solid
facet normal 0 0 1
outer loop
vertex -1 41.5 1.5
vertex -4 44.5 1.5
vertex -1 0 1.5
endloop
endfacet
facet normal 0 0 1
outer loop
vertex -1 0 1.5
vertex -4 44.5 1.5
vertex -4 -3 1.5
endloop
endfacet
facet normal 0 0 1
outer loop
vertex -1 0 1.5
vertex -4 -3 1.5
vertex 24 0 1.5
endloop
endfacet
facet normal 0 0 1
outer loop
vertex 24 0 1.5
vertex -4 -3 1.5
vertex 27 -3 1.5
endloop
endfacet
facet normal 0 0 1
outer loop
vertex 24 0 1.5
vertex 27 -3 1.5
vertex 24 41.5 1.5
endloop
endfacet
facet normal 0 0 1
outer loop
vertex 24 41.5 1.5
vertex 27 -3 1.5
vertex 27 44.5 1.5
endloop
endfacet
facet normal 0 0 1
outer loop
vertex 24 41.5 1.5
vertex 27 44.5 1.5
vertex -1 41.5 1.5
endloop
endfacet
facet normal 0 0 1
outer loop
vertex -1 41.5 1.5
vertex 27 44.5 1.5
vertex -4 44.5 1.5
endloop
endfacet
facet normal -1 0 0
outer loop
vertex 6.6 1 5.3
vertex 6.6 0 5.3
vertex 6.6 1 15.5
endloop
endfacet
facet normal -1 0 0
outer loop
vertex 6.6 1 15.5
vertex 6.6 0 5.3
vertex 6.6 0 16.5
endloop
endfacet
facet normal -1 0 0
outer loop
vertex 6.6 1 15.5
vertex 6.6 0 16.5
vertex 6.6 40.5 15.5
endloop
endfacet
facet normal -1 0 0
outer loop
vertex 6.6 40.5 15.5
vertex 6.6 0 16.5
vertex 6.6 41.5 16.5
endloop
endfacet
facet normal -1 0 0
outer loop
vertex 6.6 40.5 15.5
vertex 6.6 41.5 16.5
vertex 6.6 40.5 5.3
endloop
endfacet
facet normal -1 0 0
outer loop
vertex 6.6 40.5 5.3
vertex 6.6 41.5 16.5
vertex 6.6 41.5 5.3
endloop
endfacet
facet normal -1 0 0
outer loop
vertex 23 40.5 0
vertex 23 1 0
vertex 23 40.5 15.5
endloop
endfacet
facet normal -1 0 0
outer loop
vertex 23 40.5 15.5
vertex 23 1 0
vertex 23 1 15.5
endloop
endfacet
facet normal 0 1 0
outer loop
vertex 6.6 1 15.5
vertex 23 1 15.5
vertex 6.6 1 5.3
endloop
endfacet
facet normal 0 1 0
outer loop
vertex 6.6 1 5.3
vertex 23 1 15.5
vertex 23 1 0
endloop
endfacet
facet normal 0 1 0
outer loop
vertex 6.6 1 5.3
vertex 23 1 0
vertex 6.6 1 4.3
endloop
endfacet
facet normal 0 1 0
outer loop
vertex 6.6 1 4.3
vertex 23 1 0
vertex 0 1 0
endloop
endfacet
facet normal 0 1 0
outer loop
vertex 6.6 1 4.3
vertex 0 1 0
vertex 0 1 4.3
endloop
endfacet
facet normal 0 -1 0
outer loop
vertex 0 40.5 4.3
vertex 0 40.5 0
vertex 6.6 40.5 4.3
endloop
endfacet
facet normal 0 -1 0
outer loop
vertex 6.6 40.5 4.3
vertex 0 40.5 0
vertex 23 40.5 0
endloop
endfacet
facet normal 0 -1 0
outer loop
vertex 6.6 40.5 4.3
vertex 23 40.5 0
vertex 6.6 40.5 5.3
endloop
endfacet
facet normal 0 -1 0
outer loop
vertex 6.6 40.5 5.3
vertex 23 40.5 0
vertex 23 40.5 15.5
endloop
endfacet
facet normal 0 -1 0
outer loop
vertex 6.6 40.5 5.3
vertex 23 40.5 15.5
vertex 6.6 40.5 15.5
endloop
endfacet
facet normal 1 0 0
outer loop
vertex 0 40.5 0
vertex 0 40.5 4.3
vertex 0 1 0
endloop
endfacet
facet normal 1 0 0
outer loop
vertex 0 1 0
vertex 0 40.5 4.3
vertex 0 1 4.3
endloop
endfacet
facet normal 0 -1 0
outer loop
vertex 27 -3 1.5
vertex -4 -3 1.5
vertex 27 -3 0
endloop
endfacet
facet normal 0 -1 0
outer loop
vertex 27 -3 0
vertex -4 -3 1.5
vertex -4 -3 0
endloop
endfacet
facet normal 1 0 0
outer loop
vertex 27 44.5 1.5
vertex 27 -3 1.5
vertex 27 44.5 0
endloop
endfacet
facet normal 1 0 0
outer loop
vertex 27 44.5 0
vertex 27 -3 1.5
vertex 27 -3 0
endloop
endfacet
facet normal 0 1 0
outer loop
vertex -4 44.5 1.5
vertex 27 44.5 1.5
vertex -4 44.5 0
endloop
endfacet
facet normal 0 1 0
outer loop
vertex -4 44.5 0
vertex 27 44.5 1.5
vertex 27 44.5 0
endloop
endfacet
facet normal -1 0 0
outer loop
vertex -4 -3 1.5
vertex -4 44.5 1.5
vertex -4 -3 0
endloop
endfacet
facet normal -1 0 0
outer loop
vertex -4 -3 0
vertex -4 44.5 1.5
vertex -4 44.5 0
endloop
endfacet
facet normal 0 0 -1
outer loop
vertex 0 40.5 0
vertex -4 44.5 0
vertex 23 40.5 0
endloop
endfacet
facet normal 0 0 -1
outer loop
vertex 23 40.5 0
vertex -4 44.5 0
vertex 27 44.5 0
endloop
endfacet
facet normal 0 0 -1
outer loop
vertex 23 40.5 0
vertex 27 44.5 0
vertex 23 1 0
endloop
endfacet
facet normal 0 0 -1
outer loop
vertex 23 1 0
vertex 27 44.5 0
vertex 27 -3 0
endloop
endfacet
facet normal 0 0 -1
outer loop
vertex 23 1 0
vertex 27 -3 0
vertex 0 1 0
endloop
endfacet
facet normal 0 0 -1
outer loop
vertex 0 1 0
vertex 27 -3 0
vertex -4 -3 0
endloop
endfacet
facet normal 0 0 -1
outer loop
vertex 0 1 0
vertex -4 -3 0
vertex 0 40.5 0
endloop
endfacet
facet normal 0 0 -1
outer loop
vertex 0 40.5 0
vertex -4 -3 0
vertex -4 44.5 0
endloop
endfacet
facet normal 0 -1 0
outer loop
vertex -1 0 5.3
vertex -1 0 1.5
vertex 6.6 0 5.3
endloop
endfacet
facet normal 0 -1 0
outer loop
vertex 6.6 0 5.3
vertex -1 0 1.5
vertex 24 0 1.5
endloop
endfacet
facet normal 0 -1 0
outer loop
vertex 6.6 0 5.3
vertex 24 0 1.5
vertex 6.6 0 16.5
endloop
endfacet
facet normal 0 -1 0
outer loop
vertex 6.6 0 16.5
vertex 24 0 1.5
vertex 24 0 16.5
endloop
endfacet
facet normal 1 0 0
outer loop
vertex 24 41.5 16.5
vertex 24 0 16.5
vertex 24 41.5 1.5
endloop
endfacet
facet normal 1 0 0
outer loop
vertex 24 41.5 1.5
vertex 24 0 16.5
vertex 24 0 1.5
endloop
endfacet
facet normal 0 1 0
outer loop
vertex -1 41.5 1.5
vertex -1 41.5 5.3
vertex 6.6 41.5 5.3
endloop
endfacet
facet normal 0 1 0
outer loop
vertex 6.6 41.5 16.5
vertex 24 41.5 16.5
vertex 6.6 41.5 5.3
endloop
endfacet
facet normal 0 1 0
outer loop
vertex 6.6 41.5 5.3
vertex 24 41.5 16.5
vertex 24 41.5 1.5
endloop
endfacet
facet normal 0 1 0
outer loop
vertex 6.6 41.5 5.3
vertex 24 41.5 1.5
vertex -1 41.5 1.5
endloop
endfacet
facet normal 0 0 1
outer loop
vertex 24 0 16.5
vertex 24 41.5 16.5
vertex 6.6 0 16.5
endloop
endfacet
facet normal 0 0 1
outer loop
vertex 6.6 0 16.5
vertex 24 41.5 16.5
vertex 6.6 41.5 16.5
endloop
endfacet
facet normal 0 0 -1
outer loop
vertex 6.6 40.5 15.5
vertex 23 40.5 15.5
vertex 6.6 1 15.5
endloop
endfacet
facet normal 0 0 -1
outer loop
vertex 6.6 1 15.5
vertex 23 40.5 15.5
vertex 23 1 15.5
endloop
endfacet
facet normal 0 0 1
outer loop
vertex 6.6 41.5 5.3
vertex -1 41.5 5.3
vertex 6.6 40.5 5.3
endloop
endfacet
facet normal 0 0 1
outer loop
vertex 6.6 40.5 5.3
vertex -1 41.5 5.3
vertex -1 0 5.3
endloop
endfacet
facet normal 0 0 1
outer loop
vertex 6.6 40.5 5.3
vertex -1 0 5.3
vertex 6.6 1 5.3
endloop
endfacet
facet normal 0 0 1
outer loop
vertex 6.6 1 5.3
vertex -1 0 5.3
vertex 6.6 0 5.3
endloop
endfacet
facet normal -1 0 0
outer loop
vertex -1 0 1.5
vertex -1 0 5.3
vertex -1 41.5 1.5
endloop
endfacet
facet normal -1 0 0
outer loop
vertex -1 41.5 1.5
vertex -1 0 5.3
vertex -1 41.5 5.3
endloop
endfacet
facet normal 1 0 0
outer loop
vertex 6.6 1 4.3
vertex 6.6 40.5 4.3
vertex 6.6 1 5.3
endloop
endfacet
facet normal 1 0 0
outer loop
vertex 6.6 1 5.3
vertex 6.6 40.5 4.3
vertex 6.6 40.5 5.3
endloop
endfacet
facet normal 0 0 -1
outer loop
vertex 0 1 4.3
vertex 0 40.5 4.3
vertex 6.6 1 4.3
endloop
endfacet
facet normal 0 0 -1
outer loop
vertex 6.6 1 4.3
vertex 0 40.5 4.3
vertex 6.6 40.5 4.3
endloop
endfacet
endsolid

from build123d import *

# Parameters (mm, degrees)
ESBO_O1_W                = 31
ESBO_O1_H                = 47.5
ESBO_O1_W_2              = 24
ESBO_O1_H_2              = 41.5
RESSALTO_EXTRUS_O1_DEPTH = 1.5
RESSALTO_EXTRUS_O2_DEPTH = 16.5
RESSALTO_EXTRUS_O3_START = 16.5
ESBO_O1_5_W              = 23
ESBO_O1_5_H              = 39.5
RESSALTO_EXTRUS_O3_DEPTH = 1
ESBO_O2_W                = 6.6
ESBO_O2_H                = 41.5
CORTE_EXTRUS_O1_DEPTH    = 15
RESSALTO_EXTRUS_O6_START = -1
RESSALTO_EXTRUS_O6_DEPTH = 39.5
ESBO_O4_W                = 3.8
ESBO_O4_H                = 1
RESSALTO_EXTRUS_O9_DEPTH = 7.6


with BuildPart() as part:
    # Esboço1 → Ressalto-extrusão1 (new body)
    with BuildSketch(Plane.XY):
        with Locations((11.5, 20.75)):
            Rectangle(ESBO_O1_W, ESBO_O1_H)
        with Locations((12, 20.75)):
            Rectangle(ESBO_O1_W_2, ESBO_O1_H_2, mode=Mode.SUBTRACT)
    extrude(amount=RESSALTO_EXTRUS_O1_DEPTH)

    # Esboço1<4> → Ressalto-extrusão2 (add)
    with BuildSketch(Plane.XY):
        Polygon((0, 41.5), (0, 40.5), (23, 40.5), (23, 1), (0, 1), (0, 0), (24, 0), (24, 41.5), align=None)
    extrude(amount=RESSALTO_EXTRUS_O2_DEPTH)

    # Esboço1<5> → Ressalto-extrusão3 (add)
    with BuildSketch(Plane.XY.offset(RESSALTO_EXTRUS_O3_START)):
        with Locations((11.5, 20.75)):
            Rectangle(ESBO_O1_5_W, ESBO_O1_5_H)
    extrude(amount=-RESSALTO_EXTRUS_O3_DEPTH)

    # Esboço2 → Corte-extrusão1 (cut)
    with BuildSketch(Plane.XY.offset(16.5)):
        with Locations((3.3, 20.75)):
            Rectangle(ESBO_O2_W, ESBO_O2_H)
    extrude(amount=-CORTE_EXTRUS_O1_DEPTH, mode=Mode.SUBTRACT)



with BuildPart() as body_2:
    # Esboço3 → Ressalto-extrusão6 (new body)
    with BuildSketch(Plane(origin=(0, 41.5, 0), x_dir=(1, 0, 0), z_dir=(0, 1, 0)).offset(RESSALTO_EXTRUS_O6_START)):
        Polygon((-1, -1.5), (-1, -5.3), (6.6, -5.3), (6.6, -4.3), (0, -4.3), (0, -1.5), align=None)
    extrude(amount=-RESSALTO_EXTRUS_O6_DEPTH)


with BuildPart() as part_1:
    add(part.part)

    add(body_2.part)  # Ressalto-extrusão9 merges body 2
    # Esboço4 → Ressalto-extrusão9 (add)
    with BuildSketch(Plane.ZY.offset(-6.6)):
        with Locations((3.4, 41)):
            Rectangle(ESBO_O4_W, ESBO_O4_H)
        with Locations((3.4, 0.5)):
            Rectangle(ESBO_O4_W, ESBO_O4_H)
    extrude(amount=RESSALTO_EXTRUS_O9_DEPTH)


solid = part_1.part
